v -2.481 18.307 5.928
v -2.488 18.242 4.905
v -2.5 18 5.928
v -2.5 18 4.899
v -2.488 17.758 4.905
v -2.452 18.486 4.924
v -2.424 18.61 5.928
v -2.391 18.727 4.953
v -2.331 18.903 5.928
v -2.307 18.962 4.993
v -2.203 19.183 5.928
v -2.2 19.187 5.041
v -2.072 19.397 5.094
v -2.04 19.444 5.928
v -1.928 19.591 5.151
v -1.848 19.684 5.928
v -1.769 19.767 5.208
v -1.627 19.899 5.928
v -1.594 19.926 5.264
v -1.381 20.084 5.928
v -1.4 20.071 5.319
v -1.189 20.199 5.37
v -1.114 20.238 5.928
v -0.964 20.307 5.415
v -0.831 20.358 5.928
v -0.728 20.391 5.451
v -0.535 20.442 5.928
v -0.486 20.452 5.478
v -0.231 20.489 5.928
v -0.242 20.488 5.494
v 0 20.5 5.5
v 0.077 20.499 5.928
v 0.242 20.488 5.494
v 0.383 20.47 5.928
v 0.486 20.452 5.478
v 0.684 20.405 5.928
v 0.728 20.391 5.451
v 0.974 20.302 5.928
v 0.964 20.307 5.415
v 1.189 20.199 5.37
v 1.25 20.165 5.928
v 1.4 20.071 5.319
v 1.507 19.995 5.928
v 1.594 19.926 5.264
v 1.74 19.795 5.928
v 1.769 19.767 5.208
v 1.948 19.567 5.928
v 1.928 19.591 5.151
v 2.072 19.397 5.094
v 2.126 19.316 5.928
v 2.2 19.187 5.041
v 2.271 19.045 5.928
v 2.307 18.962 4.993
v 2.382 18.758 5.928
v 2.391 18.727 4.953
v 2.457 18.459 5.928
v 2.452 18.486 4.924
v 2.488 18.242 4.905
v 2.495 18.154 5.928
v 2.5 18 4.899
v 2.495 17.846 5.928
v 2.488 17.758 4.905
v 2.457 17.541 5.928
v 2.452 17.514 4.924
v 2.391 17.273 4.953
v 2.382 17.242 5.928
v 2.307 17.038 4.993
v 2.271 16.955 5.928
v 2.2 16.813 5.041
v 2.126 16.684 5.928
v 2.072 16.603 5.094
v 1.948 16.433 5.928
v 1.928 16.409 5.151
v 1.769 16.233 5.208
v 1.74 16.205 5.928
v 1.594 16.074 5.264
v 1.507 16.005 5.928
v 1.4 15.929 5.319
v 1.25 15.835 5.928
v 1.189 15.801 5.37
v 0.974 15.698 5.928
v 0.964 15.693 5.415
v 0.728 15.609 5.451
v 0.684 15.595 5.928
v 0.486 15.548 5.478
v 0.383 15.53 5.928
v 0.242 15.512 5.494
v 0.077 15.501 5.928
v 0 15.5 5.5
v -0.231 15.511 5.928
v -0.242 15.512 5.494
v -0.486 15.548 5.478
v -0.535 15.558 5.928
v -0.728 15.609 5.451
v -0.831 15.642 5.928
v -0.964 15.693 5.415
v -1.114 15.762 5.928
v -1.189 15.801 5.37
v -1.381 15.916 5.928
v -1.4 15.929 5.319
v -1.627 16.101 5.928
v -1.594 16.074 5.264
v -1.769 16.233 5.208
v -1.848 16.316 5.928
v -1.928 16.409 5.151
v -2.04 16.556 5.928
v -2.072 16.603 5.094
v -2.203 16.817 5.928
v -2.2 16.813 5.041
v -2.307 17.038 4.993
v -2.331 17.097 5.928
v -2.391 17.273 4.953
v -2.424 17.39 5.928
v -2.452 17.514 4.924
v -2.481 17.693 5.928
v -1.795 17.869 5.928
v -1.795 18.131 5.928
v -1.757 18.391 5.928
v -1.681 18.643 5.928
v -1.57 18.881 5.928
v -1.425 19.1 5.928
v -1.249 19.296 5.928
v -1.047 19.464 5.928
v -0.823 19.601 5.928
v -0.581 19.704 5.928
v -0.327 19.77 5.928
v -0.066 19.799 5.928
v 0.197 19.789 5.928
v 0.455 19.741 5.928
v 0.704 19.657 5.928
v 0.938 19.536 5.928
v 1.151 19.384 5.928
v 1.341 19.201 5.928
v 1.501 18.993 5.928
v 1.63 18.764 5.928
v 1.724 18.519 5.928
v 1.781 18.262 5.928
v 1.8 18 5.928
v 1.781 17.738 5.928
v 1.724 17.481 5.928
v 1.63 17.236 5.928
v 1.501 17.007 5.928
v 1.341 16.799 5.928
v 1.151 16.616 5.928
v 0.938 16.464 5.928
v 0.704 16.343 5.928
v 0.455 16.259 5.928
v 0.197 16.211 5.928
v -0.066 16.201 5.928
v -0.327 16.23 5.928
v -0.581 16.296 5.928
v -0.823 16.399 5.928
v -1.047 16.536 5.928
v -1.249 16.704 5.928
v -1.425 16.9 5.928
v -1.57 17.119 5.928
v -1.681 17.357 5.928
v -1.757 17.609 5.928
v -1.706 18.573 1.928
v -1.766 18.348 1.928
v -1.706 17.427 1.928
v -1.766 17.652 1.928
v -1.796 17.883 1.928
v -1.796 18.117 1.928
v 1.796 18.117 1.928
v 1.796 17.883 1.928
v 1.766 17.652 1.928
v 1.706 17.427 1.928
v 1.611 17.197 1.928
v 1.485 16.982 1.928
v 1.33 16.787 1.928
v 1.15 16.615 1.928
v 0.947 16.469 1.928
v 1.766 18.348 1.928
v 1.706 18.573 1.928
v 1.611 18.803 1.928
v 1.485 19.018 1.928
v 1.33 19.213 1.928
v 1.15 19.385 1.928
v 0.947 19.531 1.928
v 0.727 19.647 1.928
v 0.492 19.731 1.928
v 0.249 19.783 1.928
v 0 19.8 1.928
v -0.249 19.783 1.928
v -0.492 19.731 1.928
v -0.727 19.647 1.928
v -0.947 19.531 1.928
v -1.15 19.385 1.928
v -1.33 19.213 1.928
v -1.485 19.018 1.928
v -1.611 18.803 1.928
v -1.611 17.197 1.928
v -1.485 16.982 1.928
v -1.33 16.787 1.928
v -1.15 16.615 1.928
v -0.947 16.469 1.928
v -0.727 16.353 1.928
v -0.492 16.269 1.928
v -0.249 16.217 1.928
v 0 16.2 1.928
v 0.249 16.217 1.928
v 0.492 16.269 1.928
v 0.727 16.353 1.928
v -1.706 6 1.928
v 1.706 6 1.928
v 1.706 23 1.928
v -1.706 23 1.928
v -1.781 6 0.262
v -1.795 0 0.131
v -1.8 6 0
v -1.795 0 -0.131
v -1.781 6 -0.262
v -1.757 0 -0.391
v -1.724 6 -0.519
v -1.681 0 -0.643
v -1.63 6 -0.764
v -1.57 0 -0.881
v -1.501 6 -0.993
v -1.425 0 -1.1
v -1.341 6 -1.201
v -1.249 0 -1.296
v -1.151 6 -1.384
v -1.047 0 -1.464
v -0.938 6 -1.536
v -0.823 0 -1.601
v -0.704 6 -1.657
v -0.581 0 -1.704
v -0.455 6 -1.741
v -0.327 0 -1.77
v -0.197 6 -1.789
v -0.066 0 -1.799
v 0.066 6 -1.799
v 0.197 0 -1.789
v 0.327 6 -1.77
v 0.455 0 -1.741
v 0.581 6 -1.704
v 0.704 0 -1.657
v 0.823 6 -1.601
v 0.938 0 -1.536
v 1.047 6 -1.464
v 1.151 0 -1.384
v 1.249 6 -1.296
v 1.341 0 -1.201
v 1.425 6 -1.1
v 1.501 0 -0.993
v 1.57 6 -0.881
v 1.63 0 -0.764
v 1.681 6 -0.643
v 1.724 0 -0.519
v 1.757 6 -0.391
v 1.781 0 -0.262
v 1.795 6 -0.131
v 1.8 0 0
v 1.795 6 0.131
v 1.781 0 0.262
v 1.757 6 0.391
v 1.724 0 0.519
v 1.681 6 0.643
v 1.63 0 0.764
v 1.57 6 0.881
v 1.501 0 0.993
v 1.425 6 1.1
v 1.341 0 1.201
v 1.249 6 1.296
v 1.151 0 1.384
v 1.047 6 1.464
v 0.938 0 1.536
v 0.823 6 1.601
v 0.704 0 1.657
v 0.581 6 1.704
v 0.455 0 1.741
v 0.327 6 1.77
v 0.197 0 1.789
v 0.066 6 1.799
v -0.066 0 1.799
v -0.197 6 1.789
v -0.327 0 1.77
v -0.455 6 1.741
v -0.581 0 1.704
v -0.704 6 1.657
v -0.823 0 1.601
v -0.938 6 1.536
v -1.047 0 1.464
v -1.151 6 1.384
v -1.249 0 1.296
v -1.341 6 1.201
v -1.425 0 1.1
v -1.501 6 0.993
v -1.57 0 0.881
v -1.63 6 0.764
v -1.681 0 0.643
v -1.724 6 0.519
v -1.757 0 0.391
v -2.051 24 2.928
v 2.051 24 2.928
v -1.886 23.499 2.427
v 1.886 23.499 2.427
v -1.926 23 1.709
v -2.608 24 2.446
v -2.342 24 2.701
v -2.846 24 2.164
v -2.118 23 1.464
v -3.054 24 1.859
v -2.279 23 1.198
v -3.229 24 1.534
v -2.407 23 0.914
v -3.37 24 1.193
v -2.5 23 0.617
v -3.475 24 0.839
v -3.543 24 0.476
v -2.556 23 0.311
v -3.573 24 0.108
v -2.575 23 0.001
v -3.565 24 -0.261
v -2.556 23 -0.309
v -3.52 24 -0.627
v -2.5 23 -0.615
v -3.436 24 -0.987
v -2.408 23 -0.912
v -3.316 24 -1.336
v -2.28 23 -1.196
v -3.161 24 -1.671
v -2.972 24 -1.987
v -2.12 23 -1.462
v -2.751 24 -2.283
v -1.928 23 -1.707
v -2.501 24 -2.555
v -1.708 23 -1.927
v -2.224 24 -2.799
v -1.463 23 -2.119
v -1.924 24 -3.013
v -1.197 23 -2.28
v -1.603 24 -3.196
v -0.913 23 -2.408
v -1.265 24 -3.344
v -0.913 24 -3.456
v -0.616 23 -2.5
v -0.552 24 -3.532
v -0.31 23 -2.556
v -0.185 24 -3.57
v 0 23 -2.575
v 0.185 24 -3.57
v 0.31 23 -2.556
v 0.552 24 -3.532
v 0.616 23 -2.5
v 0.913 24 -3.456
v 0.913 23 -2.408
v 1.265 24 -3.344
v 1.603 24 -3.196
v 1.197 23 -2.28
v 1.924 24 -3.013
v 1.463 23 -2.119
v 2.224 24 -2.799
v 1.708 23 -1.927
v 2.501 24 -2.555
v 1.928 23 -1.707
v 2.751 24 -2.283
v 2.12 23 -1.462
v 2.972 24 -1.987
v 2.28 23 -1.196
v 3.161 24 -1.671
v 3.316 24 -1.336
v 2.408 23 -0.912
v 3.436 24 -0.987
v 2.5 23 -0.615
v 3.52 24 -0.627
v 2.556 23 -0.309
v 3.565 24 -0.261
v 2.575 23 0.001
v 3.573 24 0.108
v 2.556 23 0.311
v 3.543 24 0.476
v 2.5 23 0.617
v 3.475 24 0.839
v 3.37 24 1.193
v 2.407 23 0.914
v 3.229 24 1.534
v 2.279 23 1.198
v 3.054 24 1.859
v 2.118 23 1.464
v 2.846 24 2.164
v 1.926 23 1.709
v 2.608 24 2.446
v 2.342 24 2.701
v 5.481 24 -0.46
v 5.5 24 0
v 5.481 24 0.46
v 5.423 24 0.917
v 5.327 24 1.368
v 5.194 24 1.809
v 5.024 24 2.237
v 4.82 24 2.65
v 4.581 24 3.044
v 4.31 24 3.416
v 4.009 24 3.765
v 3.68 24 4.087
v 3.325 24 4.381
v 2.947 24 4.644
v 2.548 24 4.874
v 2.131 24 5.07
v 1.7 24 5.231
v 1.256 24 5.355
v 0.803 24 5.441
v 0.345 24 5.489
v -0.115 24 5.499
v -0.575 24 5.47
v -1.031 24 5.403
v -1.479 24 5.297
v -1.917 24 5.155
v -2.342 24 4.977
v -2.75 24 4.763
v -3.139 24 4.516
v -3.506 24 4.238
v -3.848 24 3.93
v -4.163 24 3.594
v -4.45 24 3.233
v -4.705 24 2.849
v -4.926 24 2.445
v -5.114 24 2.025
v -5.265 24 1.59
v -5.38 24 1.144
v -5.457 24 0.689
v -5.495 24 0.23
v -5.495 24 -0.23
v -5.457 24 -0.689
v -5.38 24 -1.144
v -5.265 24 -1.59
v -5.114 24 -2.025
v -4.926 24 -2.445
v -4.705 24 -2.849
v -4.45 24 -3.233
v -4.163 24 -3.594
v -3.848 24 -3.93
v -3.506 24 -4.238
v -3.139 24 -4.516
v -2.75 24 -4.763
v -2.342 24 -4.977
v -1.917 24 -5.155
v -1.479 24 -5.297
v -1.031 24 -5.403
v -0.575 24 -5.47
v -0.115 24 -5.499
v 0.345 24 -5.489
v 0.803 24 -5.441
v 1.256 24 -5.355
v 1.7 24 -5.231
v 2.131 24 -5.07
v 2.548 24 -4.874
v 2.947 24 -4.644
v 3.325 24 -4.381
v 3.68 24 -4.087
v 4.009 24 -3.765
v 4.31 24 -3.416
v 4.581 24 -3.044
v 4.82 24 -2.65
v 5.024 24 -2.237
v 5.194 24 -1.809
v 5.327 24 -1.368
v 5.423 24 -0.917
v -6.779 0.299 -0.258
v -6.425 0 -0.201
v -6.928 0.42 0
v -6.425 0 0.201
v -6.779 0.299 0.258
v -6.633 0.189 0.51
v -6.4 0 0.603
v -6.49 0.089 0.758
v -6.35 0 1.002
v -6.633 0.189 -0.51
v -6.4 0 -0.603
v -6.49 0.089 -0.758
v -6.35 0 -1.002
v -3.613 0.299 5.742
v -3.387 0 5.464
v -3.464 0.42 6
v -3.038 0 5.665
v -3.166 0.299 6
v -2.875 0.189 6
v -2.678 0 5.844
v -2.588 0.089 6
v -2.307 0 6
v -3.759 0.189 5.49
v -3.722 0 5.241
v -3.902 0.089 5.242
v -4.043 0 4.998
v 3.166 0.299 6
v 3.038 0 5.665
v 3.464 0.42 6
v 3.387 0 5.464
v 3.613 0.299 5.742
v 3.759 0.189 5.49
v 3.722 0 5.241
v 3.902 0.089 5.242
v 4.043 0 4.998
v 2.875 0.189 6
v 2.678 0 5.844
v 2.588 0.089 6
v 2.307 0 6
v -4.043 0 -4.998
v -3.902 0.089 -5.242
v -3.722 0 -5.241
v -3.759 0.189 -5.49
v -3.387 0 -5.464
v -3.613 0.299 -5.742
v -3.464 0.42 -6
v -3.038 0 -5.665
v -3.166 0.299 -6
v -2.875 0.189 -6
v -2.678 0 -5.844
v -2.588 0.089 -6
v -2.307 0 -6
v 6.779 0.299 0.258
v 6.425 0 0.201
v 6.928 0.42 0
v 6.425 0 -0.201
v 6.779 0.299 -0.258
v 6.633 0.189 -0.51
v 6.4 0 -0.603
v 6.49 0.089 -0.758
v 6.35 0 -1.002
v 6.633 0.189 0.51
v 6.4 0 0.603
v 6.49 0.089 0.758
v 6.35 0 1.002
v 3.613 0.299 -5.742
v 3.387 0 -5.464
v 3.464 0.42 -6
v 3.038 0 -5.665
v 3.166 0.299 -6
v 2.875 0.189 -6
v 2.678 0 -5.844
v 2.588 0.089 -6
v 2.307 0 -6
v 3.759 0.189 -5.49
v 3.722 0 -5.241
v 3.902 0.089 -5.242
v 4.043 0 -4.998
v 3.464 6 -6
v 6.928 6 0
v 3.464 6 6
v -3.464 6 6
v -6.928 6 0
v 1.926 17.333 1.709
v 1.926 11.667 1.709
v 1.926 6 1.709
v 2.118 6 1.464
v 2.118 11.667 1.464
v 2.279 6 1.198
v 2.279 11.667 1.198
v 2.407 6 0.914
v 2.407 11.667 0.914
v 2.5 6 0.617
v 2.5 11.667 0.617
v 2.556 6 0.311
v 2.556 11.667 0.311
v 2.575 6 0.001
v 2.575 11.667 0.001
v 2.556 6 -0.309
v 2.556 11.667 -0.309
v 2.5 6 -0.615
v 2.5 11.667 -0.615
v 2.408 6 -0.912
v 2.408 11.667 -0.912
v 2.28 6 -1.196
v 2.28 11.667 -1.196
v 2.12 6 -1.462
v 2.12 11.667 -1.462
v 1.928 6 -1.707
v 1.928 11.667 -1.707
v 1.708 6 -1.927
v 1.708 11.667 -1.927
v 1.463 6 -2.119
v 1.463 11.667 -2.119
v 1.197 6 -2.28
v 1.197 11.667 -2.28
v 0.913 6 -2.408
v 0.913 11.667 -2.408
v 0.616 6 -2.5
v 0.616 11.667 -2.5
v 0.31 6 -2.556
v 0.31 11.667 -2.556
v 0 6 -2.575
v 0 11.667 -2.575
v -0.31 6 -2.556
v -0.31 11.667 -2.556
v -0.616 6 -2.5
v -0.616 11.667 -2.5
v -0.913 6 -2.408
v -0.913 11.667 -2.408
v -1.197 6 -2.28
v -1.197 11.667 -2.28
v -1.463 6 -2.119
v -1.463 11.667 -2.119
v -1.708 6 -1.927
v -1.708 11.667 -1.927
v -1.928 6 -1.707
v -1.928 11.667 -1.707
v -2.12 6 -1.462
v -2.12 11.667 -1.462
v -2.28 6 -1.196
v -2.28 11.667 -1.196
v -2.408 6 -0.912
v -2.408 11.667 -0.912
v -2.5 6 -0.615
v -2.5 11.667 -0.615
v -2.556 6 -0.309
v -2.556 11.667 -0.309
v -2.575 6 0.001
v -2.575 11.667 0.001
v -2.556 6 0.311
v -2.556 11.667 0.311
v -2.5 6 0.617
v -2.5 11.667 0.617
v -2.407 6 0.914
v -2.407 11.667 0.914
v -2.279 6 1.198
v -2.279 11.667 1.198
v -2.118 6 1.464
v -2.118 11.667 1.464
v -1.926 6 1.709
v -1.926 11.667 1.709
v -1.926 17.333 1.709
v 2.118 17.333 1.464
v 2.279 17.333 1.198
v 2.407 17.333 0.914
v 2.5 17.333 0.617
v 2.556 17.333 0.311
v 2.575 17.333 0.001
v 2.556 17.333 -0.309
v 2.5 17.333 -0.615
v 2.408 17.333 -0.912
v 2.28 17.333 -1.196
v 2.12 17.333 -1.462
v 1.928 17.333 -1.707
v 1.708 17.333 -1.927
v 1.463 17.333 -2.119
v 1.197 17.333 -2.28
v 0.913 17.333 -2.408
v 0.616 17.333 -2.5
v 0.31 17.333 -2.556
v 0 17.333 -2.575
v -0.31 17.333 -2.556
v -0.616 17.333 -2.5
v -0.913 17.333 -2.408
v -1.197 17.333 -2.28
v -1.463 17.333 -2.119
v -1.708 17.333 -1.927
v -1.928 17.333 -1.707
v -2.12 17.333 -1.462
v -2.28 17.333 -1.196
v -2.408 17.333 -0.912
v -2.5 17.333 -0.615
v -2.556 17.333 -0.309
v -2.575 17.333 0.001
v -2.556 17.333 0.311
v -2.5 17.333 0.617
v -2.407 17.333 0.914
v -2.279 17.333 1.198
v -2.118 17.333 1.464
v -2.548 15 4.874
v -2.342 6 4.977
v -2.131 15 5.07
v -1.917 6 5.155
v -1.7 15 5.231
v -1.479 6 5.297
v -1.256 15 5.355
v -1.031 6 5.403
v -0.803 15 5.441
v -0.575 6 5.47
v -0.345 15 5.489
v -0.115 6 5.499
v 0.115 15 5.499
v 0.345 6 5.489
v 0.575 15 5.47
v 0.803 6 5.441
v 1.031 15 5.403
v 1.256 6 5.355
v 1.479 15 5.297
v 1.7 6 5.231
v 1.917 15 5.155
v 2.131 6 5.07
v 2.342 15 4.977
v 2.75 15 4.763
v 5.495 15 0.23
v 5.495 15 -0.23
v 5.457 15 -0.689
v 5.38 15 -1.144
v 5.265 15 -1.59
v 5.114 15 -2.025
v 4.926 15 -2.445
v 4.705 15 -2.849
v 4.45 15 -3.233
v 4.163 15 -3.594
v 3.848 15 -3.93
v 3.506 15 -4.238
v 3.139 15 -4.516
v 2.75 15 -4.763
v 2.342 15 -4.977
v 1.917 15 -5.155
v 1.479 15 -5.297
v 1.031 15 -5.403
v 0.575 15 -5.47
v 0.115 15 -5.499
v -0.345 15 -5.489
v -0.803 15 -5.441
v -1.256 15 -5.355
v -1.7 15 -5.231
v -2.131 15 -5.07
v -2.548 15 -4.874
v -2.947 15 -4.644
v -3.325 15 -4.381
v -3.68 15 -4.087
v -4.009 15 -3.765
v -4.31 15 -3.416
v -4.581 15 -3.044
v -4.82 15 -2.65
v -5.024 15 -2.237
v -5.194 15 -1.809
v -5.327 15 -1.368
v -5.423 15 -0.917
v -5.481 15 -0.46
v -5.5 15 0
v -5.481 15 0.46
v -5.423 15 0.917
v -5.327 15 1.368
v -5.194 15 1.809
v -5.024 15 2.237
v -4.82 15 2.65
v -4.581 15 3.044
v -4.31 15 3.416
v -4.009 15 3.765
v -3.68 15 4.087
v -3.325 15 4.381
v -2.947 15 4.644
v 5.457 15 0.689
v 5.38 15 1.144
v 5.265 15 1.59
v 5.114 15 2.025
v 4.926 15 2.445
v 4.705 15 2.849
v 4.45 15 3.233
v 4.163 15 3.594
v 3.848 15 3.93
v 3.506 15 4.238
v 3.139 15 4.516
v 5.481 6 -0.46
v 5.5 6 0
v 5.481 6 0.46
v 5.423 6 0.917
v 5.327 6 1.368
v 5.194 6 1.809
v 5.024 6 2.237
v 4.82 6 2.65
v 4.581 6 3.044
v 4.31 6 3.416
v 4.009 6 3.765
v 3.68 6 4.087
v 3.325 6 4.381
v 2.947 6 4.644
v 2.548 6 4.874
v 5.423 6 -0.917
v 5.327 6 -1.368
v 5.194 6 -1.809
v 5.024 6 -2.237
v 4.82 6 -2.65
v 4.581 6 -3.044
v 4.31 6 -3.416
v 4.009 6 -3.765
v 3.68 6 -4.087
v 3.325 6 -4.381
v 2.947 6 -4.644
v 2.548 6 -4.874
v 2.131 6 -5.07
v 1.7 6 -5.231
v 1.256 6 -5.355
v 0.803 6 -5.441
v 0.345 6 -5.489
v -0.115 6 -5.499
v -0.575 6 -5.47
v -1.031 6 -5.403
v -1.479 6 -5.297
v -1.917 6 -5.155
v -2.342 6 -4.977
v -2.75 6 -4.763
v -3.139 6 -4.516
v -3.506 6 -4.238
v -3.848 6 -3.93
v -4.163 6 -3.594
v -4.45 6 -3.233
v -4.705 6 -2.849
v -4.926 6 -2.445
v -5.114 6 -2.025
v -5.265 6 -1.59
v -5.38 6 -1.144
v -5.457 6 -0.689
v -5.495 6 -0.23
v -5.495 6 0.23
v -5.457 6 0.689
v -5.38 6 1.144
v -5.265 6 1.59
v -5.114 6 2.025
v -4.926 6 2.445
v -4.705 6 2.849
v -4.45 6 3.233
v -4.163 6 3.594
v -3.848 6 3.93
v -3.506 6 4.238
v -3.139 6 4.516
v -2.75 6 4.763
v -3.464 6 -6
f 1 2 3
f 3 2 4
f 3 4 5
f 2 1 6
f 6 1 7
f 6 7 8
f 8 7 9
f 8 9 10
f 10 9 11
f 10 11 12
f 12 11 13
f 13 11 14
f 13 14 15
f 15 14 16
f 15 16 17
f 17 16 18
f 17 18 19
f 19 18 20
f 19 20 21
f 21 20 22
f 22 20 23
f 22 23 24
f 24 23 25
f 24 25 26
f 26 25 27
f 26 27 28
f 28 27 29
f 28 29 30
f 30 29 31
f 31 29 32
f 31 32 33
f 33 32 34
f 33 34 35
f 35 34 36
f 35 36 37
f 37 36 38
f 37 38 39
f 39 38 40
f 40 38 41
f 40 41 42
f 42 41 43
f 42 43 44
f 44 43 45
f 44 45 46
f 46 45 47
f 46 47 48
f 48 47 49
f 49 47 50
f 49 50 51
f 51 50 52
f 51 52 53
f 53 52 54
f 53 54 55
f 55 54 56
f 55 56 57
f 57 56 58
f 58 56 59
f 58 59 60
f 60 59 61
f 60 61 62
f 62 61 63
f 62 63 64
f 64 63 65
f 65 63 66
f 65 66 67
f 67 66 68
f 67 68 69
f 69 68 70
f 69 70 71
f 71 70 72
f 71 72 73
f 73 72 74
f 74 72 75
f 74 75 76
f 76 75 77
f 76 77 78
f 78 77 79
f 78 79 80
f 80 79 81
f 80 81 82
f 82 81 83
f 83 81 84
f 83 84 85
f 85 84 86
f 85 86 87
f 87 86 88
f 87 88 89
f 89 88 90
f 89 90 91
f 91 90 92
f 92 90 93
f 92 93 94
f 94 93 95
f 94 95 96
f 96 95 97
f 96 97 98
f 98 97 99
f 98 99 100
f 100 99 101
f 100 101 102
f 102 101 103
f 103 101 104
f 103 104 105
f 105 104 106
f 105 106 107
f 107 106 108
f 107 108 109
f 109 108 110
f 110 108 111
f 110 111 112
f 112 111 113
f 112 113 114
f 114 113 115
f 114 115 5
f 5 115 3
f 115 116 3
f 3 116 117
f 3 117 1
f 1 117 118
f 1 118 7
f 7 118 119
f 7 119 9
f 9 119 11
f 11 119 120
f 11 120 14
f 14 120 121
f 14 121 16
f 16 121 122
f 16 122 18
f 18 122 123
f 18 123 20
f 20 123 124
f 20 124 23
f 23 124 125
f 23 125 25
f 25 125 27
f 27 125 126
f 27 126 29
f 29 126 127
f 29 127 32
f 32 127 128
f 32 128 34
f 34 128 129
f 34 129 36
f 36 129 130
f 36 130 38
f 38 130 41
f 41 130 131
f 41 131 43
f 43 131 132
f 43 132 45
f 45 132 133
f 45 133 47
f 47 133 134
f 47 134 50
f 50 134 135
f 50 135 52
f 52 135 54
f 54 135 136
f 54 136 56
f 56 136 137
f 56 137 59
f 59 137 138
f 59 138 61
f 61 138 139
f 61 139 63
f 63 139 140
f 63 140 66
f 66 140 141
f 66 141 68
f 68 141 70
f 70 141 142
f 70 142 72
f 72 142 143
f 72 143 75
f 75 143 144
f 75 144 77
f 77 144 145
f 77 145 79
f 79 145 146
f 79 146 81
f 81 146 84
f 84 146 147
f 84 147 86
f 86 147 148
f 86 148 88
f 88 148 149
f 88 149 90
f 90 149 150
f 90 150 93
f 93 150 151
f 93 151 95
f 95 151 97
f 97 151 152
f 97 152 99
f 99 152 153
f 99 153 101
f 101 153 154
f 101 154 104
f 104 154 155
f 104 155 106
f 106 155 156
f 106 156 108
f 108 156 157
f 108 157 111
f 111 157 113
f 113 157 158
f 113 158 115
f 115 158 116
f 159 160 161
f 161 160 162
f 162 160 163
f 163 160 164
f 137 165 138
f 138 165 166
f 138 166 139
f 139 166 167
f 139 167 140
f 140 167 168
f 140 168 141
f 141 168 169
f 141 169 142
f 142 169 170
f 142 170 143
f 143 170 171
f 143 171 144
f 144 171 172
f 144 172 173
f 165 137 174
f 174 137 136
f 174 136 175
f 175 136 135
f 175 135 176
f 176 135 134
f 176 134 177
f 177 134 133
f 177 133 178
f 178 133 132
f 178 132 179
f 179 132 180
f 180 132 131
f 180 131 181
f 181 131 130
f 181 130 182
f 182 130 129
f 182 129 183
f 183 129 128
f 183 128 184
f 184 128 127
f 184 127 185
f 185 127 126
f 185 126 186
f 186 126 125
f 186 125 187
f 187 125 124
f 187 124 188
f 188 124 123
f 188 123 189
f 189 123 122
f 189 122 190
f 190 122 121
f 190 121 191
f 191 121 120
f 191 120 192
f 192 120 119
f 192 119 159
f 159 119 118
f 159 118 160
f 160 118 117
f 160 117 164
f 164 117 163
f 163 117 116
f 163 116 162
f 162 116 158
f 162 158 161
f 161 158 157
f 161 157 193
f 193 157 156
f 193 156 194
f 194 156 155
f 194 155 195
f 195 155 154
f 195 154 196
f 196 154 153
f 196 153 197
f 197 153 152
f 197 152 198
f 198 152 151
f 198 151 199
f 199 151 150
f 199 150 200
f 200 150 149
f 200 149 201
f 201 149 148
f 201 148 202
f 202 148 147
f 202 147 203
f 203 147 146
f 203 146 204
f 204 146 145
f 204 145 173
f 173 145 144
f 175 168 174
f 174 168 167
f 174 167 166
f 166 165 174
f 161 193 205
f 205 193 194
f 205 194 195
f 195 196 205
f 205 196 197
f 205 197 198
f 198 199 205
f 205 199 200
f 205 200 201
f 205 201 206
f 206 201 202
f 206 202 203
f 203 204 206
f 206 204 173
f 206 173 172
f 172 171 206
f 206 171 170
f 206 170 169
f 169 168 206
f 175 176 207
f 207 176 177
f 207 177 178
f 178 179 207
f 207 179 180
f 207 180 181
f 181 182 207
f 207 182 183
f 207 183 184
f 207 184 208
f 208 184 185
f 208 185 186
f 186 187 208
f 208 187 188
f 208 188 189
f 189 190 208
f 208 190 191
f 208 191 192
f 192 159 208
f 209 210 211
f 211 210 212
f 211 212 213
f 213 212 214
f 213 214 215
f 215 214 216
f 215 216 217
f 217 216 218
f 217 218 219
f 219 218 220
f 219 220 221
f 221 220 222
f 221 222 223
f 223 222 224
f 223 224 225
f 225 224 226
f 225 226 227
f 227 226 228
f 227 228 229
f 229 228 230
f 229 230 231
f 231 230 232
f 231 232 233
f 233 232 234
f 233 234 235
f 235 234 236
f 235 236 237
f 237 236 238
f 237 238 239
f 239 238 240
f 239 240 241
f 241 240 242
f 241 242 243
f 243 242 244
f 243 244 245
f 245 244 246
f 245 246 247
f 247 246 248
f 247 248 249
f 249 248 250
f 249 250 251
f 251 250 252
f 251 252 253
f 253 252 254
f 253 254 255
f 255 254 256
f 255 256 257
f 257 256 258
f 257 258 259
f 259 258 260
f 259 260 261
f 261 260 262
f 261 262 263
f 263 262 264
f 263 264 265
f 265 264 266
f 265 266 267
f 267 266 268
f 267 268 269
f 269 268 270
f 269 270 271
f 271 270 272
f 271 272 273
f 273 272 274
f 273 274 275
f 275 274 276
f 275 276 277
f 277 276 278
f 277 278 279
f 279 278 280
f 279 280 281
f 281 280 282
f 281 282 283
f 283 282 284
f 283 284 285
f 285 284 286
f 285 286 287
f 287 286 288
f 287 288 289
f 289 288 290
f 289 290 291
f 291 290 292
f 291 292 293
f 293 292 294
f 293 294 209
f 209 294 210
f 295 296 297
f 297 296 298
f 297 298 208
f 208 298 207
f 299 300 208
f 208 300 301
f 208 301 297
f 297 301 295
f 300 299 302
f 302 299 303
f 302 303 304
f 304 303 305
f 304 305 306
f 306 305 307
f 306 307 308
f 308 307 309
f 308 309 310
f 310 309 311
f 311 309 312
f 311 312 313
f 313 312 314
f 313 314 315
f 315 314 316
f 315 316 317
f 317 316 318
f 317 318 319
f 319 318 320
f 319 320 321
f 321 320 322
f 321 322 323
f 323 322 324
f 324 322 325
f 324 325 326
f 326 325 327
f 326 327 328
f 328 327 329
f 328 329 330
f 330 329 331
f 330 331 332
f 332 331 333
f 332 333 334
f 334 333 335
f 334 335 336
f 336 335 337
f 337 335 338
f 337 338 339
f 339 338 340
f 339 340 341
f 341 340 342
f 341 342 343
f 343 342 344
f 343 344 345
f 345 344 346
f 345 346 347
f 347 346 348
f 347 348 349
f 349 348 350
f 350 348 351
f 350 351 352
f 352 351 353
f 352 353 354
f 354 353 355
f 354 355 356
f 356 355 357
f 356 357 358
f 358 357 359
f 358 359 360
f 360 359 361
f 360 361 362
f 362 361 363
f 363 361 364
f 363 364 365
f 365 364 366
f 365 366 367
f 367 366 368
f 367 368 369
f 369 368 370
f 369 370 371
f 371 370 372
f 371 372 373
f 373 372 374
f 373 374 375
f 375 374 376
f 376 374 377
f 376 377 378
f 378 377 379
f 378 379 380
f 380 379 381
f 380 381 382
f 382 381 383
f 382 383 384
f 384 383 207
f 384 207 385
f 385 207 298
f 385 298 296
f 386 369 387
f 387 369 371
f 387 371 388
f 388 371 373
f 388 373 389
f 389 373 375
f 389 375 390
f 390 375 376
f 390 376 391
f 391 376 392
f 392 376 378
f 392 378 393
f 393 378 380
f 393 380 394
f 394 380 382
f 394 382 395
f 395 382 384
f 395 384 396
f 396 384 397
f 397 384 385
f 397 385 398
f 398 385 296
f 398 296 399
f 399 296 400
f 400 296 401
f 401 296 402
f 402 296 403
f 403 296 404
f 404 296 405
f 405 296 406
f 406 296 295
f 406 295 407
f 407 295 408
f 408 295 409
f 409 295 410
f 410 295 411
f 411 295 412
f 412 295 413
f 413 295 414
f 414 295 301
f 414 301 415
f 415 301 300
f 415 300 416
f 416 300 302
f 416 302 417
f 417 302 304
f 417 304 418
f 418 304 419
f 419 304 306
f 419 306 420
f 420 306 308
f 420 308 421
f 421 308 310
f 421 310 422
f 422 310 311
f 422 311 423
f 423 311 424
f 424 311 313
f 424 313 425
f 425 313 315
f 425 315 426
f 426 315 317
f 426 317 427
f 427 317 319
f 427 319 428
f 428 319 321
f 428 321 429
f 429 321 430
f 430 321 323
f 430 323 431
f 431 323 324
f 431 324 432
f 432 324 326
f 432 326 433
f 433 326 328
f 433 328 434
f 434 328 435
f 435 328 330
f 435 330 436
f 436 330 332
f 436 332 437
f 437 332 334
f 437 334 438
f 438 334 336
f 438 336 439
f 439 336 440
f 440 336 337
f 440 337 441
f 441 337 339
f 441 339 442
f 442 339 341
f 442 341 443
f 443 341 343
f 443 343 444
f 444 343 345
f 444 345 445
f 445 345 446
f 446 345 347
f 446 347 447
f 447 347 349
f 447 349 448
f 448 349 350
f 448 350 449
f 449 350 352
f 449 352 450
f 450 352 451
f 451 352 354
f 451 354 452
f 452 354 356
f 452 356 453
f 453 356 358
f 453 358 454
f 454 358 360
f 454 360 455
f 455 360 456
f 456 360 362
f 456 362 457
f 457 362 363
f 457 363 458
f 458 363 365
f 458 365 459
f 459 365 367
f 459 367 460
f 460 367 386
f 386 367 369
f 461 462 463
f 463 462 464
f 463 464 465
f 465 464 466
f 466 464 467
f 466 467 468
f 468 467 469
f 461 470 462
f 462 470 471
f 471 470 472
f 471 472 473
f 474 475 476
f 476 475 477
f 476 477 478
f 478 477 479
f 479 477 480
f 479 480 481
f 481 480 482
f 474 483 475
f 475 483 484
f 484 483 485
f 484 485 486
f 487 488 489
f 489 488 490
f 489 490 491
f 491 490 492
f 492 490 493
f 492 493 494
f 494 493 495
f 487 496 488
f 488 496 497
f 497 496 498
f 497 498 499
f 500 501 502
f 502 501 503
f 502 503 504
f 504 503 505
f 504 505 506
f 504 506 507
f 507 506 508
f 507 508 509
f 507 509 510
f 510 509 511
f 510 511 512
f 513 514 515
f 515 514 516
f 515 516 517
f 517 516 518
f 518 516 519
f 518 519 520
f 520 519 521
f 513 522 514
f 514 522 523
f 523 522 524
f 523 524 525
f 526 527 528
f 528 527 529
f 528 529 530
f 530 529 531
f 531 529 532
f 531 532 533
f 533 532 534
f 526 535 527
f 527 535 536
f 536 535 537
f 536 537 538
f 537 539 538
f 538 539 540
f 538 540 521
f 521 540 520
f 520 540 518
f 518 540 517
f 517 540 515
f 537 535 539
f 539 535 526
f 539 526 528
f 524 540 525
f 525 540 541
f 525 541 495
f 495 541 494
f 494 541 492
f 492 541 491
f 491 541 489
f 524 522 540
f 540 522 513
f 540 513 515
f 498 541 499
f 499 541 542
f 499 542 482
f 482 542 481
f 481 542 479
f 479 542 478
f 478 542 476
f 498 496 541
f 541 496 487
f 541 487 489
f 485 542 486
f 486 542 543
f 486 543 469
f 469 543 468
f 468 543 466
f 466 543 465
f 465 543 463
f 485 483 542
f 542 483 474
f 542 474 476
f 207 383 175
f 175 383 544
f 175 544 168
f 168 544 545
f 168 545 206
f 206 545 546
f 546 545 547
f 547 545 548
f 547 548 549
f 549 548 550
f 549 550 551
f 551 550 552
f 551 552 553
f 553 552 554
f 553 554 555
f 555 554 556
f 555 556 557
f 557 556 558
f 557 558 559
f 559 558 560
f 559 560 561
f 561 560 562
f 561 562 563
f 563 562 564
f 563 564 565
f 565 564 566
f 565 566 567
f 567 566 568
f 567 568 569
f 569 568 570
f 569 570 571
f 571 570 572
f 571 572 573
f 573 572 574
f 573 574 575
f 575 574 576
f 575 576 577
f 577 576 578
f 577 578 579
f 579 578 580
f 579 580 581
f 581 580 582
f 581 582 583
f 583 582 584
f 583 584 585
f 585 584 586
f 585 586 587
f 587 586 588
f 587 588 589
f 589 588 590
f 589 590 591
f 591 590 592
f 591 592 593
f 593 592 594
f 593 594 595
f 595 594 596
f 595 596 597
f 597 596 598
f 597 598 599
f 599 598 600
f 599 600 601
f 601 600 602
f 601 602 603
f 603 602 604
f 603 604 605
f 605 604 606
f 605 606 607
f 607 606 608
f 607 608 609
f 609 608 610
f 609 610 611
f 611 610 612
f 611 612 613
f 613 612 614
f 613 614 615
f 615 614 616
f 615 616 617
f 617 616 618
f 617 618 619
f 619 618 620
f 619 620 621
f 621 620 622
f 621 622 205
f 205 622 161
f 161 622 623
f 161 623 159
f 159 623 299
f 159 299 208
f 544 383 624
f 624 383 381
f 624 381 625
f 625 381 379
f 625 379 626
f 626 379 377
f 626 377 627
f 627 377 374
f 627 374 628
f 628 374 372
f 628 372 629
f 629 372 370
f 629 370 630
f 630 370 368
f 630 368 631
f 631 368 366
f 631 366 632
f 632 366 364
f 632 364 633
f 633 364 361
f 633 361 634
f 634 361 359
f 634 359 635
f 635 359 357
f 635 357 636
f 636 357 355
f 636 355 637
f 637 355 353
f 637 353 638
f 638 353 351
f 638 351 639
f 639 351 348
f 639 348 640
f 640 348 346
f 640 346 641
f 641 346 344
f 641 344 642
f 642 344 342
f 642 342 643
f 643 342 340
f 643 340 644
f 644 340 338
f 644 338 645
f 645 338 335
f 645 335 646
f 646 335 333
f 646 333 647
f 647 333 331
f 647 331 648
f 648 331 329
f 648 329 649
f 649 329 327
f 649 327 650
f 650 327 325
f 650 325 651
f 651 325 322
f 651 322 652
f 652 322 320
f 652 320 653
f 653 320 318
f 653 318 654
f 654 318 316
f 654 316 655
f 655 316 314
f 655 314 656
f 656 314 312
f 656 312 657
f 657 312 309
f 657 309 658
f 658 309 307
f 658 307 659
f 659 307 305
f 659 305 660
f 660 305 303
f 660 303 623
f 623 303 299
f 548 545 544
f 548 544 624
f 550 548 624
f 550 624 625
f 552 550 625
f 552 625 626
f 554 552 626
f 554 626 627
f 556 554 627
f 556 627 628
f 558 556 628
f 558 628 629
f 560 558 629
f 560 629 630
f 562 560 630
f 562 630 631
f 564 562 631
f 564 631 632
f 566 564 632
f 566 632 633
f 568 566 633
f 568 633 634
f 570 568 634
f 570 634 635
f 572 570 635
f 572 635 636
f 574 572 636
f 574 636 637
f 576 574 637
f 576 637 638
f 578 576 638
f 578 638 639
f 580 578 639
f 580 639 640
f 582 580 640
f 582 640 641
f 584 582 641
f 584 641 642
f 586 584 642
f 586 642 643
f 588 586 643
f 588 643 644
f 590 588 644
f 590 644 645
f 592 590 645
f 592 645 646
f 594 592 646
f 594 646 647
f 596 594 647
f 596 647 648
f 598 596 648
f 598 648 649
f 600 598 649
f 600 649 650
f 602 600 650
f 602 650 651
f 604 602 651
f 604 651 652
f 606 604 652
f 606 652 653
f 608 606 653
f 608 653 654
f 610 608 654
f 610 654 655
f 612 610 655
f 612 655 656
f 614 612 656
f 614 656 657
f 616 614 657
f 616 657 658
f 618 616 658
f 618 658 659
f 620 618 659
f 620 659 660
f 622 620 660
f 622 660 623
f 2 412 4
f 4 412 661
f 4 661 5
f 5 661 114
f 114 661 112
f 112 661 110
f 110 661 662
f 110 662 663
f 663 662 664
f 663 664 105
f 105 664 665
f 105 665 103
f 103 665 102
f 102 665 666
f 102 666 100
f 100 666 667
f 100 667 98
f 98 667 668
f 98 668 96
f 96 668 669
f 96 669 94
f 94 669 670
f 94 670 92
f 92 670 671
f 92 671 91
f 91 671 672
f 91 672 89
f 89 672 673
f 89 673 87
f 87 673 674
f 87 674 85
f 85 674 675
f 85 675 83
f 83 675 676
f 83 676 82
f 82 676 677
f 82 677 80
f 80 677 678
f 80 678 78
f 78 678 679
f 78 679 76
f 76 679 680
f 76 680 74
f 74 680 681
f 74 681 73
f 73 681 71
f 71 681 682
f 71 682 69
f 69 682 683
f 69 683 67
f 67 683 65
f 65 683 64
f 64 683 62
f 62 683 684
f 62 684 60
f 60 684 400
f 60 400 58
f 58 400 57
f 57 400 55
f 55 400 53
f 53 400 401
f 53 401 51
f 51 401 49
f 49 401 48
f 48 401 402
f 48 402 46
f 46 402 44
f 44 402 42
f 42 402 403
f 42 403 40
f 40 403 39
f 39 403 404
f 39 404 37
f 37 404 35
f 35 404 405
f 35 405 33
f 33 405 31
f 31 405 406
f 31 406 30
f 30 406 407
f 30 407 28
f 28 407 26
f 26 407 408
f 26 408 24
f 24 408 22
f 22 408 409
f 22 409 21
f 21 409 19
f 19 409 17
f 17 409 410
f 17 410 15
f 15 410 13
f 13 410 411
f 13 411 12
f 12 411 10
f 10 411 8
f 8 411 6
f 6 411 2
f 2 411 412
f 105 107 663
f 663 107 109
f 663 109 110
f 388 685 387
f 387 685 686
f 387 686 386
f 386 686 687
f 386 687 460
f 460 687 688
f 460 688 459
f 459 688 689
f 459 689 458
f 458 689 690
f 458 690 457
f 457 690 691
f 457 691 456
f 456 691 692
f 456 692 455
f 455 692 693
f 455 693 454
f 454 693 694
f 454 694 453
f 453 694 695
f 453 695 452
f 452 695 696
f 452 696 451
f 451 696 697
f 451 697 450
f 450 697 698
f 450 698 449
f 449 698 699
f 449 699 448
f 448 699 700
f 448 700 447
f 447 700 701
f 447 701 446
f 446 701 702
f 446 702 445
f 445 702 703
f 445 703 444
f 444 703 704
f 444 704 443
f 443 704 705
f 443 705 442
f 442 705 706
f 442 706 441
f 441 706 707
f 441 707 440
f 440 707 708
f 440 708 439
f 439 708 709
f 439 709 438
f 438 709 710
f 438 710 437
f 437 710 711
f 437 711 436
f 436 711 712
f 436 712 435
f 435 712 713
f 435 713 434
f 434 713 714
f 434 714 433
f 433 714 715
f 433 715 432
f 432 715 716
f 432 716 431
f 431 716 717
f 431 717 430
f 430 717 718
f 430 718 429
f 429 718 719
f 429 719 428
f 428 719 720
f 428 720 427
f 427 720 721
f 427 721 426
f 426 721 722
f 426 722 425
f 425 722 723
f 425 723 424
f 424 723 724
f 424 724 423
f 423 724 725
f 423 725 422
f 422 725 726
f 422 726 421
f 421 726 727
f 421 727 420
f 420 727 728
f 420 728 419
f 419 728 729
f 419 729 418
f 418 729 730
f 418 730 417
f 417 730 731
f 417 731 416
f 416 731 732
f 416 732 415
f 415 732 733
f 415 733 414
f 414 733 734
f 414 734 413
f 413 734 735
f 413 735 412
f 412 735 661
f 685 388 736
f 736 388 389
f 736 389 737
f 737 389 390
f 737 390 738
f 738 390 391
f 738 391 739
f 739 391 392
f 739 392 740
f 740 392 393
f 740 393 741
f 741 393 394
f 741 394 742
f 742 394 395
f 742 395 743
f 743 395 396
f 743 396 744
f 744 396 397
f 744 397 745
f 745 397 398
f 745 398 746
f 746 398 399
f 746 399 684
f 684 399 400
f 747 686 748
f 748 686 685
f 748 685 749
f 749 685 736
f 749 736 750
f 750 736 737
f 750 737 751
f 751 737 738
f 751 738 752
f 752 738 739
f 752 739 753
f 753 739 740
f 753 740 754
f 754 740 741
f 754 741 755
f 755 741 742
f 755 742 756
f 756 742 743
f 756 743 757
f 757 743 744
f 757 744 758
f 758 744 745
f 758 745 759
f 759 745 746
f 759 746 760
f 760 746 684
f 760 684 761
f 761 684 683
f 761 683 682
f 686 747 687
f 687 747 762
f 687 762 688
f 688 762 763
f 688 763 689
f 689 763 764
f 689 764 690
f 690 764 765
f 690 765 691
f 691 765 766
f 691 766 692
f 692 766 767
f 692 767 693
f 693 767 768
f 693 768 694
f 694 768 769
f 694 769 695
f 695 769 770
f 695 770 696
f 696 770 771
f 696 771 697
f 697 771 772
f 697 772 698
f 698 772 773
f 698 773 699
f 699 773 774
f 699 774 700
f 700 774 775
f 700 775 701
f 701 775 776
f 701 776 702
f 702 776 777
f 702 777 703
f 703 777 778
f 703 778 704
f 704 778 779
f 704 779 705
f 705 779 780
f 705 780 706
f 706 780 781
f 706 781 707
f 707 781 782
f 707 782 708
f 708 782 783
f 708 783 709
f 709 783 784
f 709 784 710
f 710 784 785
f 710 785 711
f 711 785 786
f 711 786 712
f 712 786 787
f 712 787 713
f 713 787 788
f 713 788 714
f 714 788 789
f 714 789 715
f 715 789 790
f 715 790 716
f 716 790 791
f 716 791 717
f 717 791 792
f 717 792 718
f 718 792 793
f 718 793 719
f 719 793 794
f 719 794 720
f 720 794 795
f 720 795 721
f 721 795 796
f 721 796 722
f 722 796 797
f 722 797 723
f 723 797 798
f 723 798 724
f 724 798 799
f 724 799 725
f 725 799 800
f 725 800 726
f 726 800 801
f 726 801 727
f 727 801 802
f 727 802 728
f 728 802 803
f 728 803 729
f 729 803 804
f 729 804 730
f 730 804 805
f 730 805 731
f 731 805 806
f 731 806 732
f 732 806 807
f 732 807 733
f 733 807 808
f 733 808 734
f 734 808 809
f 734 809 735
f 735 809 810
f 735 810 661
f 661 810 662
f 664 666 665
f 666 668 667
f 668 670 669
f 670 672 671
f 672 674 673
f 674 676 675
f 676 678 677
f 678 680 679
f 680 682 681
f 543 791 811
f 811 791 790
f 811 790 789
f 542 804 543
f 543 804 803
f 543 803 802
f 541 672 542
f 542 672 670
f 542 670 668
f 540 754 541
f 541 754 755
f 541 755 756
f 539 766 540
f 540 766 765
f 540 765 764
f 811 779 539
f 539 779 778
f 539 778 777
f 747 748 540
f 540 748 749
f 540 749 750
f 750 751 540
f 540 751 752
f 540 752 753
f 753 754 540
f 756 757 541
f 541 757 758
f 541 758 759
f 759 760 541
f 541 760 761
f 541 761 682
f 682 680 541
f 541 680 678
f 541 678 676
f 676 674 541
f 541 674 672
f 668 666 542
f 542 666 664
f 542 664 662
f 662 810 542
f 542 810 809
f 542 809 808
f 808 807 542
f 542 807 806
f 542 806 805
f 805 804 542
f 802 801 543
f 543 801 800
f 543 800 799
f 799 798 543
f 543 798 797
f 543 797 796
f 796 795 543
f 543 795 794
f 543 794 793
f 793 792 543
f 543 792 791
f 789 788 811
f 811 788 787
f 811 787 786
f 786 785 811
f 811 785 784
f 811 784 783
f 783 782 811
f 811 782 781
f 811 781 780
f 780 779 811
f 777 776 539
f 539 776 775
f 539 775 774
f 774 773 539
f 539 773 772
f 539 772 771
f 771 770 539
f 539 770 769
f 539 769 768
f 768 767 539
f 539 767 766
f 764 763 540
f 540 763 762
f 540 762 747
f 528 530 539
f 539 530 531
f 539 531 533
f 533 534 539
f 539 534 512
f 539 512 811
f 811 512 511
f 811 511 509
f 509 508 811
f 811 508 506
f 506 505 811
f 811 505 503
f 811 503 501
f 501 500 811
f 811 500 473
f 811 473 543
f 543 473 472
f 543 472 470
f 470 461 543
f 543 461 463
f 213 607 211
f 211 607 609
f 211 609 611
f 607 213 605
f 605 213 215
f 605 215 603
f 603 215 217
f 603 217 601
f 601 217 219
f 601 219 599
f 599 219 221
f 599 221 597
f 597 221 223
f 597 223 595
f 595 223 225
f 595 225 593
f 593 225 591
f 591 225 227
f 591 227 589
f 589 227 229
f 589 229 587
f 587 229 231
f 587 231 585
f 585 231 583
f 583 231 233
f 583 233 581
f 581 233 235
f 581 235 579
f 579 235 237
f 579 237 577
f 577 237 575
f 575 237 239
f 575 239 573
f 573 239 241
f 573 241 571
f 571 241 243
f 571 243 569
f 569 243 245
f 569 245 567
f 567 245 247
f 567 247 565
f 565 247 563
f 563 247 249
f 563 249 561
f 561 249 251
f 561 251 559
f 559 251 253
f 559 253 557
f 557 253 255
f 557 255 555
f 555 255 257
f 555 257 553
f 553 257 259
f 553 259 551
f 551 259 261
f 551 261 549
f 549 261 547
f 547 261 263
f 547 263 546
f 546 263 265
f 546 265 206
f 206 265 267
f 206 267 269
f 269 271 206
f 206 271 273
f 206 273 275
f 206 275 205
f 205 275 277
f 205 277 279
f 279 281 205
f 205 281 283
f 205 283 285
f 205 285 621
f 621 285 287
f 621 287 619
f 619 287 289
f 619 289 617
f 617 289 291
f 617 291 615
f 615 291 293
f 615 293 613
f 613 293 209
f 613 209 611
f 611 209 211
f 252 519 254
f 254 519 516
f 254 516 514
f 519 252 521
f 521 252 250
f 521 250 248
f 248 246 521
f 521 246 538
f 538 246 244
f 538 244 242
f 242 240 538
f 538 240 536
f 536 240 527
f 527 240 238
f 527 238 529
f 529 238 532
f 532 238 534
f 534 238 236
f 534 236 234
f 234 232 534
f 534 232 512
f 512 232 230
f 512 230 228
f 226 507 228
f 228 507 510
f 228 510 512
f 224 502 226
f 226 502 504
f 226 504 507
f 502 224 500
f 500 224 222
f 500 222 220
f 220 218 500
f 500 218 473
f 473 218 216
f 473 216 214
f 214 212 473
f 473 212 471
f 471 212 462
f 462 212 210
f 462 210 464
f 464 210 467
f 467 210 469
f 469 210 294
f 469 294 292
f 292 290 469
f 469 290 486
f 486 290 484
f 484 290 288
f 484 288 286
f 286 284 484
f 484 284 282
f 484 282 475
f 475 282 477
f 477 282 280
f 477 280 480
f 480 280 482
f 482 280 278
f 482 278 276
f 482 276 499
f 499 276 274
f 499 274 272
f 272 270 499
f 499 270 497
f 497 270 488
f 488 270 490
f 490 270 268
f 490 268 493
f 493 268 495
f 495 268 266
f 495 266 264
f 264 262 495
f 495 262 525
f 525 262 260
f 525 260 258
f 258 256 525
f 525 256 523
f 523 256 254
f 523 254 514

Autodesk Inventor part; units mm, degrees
ref_plane "YZ Plane" through (0, 0, 0) normal (1, 0, 0) x (0, 1, 0)
ref_plane "XZ Plane" through (0, 0, 0) normal (0, 1, 0) x (-1, 0, 0)
sketch "Sketch7" plane through (0, 0, 0) normal (0, 1, 0) x (-1, 0, 0)
  line L0 (-3.4641, -6) -> (-6.9282, 0)
  line L1 (-6.9282, 0) -> (-3.4641, 6)
  line L2 (-3.4641, 6) -> (3.4641, 6)
  line L3 (3.4641, 6) -> (6.9282, 0)
  line L4 (6.9282, 0) -> (3.4641, -6)
  line L5 (3.4641, -6) -> (-3.4641, -6)
  point P0 (0, 0)
  point P1 (0, 0)
  point P2 (0, -6)
  dimension "d24" = 12
extrude "Extrusion6" add sketch "Sketch7" along normal blind 6
sketch "Sketch8" plane through (0, 6, 0) normal (0, 1, 0) x (1, 0, 0)
  circle A0 centre (0, 0) radius 5.5
  circle A1 centre (0, 0) radius 2.575
  line L0 (-0.1332, 2.5716) -> (-0.1332, -1.9284)
  line L1 (-0.1332, -1.9284) -> (-1.7064, -1.9284)
  line L2 (-0.1332, -1.9284) -> (1.7064, -1.9284)
  dimension "d27" = 11
  dimension "d28" = 5.15
  dimension "d29" = 4.5
  dimension "d30" = 1.5732
extrude "Extrusion7" add sketch "Sketch8" along normal blind 18 contours A0 | A1 L1 L2
sketch "Sketch9" plane through (0, 0, 0) normal (0, 0, 1) x (1, 0, 0)
  line L0 (6.9282, 0) -> (3.4641, 0) projected
  line L1 (6.9282, 0) -> (6.4282, 0)
  line L2 (6.8032, 0.3147) -> (6.4282, 0)
  line L3 (6.9282, 0) -> (6.9282, 0.3868)
  line L4 (0, -4.8) -> (0, 28.8) projected
  line L5 (6.8032, 0.3147) -> (6.9282, 0.4195)
  line L6 (6.9282, 0.4195) -> (6.9282, 0.3868)
  point P0 (0, 0)
  dimension "d33" = 0.5
  dimension "d35" = 40
  dimension "d39" = 0.125
  dimension "d40" = 0.1049
revolve "Revolution1" cut sketch "Sketch9" angle 360 about axis through (0, -10, 0) along (0, 1, 0)
chamfer "Chamfer3" distance 1 angle 45 2 edges at (0, 24, -2.575) (0, 24, 1.9284)
sketch "Sketch10" plane through (0, 0, 0) normal (0, -1, 0) x (1, 0, 0)
  circle A0 centre (0, 0) radius 1.8
  dimension "d44" = 3.6
extrude "Extrusion8" cut sketch "Sketch10" against normal through all
sketch "Sketch13" plane through (1.7064, 6, 1.9284) normal (0, 0, -1) x (-1, 0, 0)
  circle A0 centre (1.7064, 12) radius 1.8
  point P0 (1.7064, -6)
  dimension "d55" = 3.6
  dimension "d56" = 18
  dimension "d57" = 0
extrude "Extrusion11" cut sketch "Sketch13" against normal through all
ref_plane "Work Plane2" through (1.7064, 6, 5.9284) normal (0, 0, -1) x (-1, 0, 0)
sketch "Sketch14" plane through (1.7064, 6, 5.9284) normal (0, 0, -1) x (-1, 0, 0)
  spline S0 degree 8 poles (3.5064, 12) (3.5064, 12.1901) (3.4834, 12.3798) (3.4377, 12.5672) (3.3691, 12.7503) (3.2769, 12.9271) (3.1607, 13.0947) (3.0198, 13.2496) (2.7182, 13.499) (2.5613, 13.6034) (2.3851, 13.6923) (2.1931, 13.7603) (1.99, 13.8033) (1.7813, 13.819) (1.5725, 13.8069) (1.1492, 13.7262) (0.9448, 13.6548) (0.7585, 13.5594) (0.5918, 13.4445) (0.4454, 13.3144) (0.3197, 13.1725) (0.2144, 13.0225) (0.0308, 12.6885) (-0.0422, 12.5008) (-0.0906, 12.3073) (-0.1146, 12.1105) (-0.1143, 11.9127) (-0.0899, 11.7163) (-0.041, 11.5236) (0.0949, 11.1805) (0.1748, 11.0279) (0.2727, 10.8814) (0.3891, 10.7428) (0.5244, 10.6146) (0.6789, 10.4998) (0.8523, 10.4022) (1.2226, 10.2556) (1.417, 10.2039) (1.6217, 10.1768) (1.8302, 10.1772) (2.0358, 10.2054) (2.2319, 10.2593) (2.4126, 10.3342) (2.8114, 10.5534) (3.0139, 10.7181) (3.1802, 10.9062) (3.3115, 11.1105) (3.409, 11.3257) (3.4738, 11.5476) (3.5064, 11.7733) (3.5064, 12) knots 0 0 0 0 0 0 0 0 0 0.152782 0.152782 0.152782 0.152782 0.152782 0.152782 0.152782 0.27746 0.27746 0.27746 0.27746 0.27746 0.27746 0.27746 0.412202 0.412202 0.412202 0.412202 0.412202 0.412202 0.412202 0.567191 0.567191 0.567191 0.567191 0.567191 0.567191 0.567191 0.697775 0.697775 0.697775 0.697775 0.697775 0.697775 0.697775 0.819734 0.819734 0.819734 0.819734 0.819734 0.819734 0.819734 1 1 1 1 1 1 1 1 1 projected
  circle A0 centre (1.7064, 12) radius 2.5
  line L0 (4.0133, -6) -> (-0.6005, -6) projected
  point P0 (1.7064, -6)
  point P1 (1.7064, -6)
  point P2 (1.7064, -6)
  dimension "d61" = 5
  dimension "d62" = 18
extrude "Extrusion12" add sketch "Sketch14" along normal up to surface
properties part number "PIN_3DPrint"
